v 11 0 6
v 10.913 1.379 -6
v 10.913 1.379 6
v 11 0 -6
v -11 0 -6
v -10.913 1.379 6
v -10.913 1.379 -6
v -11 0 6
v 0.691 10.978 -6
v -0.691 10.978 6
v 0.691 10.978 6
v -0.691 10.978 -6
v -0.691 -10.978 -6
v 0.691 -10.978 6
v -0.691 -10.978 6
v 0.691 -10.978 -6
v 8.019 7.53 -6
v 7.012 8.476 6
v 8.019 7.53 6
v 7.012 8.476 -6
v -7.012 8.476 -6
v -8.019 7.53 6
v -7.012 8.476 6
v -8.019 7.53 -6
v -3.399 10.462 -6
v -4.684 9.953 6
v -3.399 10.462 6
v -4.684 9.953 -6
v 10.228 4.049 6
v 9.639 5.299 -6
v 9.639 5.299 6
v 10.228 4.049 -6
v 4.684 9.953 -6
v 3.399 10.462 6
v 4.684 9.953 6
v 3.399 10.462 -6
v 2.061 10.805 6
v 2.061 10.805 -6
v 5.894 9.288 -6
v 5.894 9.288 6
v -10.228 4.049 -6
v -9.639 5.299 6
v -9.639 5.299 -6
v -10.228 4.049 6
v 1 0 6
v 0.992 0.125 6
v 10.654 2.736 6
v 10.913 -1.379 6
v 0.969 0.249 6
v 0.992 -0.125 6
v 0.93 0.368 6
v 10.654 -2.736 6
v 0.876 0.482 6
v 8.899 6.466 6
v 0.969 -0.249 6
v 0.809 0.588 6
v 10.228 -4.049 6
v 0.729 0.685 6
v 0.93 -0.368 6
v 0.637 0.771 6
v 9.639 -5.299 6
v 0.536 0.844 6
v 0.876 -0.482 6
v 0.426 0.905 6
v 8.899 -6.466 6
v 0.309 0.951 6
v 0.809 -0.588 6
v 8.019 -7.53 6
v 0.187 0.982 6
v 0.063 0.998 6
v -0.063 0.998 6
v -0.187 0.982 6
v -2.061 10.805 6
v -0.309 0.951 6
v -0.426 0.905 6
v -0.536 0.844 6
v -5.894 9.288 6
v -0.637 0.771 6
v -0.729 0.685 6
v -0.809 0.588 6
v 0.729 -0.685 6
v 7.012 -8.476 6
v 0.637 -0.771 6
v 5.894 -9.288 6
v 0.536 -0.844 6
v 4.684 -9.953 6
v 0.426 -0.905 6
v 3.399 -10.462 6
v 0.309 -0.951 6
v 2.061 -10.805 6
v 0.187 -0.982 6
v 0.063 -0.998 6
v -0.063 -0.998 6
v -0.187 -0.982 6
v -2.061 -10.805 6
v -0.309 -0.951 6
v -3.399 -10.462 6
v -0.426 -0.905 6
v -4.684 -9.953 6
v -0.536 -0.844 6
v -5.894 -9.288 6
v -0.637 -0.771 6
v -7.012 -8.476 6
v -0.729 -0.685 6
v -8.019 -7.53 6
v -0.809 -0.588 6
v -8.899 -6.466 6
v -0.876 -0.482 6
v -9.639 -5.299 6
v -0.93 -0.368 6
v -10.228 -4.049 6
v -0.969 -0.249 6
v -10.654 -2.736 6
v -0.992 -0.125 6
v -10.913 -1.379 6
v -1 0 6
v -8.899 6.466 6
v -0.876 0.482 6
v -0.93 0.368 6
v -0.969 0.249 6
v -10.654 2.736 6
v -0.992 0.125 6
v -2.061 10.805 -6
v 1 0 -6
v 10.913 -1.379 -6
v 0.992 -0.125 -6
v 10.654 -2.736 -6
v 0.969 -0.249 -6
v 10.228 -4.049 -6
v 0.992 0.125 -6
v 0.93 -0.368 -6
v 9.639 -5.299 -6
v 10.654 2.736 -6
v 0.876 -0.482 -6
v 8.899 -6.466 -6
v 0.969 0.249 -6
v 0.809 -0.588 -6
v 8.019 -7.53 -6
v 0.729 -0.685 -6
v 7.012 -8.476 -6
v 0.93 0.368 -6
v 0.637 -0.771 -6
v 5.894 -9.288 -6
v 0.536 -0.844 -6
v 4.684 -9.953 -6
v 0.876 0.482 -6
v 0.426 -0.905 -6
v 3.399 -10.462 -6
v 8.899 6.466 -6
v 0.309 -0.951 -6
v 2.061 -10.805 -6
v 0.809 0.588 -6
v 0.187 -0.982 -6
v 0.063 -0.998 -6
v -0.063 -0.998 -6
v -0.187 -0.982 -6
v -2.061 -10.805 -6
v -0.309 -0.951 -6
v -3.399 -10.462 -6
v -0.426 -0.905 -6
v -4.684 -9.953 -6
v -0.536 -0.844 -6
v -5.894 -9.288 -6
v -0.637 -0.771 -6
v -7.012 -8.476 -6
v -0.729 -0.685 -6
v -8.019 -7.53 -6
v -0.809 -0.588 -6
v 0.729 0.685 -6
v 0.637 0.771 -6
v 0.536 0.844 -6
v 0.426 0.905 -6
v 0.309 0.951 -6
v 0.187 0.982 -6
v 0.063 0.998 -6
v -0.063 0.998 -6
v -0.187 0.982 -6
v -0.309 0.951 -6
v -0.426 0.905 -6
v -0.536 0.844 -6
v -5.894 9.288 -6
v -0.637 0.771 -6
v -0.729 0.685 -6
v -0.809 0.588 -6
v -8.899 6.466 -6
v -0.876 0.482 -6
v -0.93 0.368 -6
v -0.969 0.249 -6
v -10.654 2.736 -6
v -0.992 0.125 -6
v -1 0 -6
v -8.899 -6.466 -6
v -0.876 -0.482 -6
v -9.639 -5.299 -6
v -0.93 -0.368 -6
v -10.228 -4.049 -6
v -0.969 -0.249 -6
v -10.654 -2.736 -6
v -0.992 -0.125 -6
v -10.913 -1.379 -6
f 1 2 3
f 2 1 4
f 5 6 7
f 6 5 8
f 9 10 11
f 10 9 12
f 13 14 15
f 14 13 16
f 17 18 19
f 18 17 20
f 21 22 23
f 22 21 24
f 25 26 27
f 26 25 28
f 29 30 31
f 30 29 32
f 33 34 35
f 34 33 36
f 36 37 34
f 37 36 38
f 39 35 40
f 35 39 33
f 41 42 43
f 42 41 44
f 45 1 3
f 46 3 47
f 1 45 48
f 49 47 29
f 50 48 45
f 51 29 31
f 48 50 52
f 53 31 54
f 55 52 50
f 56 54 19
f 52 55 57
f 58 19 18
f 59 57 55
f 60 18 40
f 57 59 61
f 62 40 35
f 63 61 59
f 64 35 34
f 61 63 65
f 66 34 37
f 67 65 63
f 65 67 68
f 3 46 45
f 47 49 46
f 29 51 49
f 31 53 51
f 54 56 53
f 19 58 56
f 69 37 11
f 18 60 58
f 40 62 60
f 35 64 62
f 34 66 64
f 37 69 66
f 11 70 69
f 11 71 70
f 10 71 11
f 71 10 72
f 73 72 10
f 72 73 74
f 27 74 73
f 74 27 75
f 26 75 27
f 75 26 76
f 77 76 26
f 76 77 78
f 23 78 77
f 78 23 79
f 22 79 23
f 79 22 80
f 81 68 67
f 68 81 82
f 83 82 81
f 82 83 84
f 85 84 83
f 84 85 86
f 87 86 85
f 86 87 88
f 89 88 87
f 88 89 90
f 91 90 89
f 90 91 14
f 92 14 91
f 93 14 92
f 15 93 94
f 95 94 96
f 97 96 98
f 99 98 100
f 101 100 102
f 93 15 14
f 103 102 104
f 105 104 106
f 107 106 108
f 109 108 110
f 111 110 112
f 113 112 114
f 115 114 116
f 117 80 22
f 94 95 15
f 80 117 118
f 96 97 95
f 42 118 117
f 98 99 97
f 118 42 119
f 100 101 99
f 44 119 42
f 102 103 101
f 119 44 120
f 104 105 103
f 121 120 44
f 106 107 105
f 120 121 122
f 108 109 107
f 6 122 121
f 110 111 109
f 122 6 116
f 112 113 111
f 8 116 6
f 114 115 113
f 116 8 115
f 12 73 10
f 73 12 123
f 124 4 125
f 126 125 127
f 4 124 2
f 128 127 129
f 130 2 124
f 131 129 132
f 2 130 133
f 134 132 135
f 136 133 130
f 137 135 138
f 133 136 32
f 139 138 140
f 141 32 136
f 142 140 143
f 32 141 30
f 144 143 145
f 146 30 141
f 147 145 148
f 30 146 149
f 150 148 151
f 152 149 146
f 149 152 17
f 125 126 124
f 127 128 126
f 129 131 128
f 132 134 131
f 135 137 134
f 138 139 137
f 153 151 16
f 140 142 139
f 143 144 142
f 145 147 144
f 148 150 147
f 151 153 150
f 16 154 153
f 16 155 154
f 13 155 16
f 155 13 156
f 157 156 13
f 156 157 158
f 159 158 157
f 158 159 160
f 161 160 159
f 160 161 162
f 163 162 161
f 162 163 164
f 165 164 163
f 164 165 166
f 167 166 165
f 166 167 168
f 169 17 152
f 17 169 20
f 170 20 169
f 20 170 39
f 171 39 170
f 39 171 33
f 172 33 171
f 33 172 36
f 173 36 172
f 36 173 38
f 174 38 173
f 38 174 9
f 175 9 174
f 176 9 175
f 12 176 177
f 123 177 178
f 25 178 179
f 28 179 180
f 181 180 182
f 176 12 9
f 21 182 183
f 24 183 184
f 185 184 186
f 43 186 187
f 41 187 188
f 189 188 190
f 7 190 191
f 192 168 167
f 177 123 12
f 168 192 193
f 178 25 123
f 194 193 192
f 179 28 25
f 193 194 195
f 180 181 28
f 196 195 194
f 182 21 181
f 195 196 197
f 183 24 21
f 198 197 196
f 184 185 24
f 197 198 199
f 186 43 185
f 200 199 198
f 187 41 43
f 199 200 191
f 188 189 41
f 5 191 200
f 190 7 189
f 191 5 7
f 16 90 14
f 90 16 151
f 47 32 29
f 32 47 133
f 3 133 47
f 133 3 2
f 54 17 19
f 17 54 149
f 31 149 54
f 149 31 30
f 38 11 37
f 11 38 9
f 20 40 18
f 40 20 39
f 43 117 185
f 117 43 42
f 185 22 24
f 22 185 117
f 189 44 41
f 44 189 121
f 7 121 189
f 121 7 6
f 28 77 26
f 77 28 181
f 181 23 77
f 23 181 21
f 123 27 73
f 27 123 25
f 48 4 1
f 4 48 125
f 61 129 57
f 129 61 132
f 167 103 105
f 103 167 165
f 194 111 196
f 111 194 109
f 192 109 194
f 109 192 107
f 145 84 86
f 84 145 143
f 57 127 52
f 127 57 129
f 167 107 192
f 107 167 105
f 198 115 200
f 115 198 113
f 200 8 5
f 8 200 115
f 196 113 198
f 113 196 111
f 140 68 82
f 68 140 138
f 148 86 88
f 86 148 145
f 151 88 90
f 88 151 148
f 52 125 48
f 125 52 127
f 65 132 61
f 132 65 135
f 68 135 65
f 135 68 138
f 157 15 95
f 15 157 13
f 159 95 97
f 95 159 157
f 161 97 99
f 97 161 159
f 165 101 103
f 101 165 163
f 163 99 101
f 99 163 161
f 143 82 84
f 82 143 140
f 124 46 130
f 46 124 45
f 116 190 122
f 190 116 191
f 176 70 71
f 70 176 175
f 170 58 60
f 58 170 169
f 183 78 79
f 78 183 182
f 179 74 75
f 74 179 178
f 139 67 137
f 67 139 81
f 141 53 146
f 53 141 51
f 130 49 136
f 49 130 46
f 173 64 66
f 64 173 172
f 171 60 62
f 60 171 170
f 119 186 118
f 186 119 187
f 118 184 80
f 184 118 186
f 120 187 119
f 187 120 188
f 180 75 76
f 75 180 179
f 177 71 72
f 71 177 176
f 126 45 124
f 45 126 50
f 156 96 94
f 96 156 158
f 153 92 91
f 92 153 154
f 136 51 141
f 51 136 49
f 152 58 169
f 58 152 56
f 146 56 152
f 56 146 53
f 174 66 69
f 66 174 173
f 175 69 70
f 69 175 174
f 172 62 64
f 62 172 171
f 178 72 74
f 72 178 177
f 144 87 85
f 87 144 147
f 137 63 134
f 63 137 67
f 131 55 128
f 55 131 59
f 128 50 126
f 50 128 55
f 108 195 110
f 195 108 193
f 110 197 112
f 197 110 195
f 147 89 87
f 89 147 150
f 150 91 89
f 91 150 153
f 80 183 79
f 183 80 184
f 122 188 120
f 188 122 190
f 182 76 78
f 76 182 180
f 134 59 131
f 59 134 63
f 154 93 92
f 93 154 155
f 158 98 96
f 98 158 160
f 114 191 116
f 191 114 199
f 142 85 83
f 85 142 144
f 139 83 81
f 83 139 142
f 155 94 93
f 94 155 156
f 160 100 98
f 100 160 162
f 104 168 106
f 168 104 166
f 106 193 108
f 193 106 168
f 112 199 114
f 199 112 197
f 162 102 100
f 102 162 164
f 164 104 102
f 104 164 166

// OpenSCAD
$fn = 50;


difference() {
	union() {
		translate(v = [0, 0, -6.0000000000]) {
			cylinder(h = 12, r = 11.0000000000);
		}
	}
	union() {
		translate(v = [0, 0, -100.0000000000]) {
			cylinder(h = 200, r = 1.0000000000);
		}
	}
}
